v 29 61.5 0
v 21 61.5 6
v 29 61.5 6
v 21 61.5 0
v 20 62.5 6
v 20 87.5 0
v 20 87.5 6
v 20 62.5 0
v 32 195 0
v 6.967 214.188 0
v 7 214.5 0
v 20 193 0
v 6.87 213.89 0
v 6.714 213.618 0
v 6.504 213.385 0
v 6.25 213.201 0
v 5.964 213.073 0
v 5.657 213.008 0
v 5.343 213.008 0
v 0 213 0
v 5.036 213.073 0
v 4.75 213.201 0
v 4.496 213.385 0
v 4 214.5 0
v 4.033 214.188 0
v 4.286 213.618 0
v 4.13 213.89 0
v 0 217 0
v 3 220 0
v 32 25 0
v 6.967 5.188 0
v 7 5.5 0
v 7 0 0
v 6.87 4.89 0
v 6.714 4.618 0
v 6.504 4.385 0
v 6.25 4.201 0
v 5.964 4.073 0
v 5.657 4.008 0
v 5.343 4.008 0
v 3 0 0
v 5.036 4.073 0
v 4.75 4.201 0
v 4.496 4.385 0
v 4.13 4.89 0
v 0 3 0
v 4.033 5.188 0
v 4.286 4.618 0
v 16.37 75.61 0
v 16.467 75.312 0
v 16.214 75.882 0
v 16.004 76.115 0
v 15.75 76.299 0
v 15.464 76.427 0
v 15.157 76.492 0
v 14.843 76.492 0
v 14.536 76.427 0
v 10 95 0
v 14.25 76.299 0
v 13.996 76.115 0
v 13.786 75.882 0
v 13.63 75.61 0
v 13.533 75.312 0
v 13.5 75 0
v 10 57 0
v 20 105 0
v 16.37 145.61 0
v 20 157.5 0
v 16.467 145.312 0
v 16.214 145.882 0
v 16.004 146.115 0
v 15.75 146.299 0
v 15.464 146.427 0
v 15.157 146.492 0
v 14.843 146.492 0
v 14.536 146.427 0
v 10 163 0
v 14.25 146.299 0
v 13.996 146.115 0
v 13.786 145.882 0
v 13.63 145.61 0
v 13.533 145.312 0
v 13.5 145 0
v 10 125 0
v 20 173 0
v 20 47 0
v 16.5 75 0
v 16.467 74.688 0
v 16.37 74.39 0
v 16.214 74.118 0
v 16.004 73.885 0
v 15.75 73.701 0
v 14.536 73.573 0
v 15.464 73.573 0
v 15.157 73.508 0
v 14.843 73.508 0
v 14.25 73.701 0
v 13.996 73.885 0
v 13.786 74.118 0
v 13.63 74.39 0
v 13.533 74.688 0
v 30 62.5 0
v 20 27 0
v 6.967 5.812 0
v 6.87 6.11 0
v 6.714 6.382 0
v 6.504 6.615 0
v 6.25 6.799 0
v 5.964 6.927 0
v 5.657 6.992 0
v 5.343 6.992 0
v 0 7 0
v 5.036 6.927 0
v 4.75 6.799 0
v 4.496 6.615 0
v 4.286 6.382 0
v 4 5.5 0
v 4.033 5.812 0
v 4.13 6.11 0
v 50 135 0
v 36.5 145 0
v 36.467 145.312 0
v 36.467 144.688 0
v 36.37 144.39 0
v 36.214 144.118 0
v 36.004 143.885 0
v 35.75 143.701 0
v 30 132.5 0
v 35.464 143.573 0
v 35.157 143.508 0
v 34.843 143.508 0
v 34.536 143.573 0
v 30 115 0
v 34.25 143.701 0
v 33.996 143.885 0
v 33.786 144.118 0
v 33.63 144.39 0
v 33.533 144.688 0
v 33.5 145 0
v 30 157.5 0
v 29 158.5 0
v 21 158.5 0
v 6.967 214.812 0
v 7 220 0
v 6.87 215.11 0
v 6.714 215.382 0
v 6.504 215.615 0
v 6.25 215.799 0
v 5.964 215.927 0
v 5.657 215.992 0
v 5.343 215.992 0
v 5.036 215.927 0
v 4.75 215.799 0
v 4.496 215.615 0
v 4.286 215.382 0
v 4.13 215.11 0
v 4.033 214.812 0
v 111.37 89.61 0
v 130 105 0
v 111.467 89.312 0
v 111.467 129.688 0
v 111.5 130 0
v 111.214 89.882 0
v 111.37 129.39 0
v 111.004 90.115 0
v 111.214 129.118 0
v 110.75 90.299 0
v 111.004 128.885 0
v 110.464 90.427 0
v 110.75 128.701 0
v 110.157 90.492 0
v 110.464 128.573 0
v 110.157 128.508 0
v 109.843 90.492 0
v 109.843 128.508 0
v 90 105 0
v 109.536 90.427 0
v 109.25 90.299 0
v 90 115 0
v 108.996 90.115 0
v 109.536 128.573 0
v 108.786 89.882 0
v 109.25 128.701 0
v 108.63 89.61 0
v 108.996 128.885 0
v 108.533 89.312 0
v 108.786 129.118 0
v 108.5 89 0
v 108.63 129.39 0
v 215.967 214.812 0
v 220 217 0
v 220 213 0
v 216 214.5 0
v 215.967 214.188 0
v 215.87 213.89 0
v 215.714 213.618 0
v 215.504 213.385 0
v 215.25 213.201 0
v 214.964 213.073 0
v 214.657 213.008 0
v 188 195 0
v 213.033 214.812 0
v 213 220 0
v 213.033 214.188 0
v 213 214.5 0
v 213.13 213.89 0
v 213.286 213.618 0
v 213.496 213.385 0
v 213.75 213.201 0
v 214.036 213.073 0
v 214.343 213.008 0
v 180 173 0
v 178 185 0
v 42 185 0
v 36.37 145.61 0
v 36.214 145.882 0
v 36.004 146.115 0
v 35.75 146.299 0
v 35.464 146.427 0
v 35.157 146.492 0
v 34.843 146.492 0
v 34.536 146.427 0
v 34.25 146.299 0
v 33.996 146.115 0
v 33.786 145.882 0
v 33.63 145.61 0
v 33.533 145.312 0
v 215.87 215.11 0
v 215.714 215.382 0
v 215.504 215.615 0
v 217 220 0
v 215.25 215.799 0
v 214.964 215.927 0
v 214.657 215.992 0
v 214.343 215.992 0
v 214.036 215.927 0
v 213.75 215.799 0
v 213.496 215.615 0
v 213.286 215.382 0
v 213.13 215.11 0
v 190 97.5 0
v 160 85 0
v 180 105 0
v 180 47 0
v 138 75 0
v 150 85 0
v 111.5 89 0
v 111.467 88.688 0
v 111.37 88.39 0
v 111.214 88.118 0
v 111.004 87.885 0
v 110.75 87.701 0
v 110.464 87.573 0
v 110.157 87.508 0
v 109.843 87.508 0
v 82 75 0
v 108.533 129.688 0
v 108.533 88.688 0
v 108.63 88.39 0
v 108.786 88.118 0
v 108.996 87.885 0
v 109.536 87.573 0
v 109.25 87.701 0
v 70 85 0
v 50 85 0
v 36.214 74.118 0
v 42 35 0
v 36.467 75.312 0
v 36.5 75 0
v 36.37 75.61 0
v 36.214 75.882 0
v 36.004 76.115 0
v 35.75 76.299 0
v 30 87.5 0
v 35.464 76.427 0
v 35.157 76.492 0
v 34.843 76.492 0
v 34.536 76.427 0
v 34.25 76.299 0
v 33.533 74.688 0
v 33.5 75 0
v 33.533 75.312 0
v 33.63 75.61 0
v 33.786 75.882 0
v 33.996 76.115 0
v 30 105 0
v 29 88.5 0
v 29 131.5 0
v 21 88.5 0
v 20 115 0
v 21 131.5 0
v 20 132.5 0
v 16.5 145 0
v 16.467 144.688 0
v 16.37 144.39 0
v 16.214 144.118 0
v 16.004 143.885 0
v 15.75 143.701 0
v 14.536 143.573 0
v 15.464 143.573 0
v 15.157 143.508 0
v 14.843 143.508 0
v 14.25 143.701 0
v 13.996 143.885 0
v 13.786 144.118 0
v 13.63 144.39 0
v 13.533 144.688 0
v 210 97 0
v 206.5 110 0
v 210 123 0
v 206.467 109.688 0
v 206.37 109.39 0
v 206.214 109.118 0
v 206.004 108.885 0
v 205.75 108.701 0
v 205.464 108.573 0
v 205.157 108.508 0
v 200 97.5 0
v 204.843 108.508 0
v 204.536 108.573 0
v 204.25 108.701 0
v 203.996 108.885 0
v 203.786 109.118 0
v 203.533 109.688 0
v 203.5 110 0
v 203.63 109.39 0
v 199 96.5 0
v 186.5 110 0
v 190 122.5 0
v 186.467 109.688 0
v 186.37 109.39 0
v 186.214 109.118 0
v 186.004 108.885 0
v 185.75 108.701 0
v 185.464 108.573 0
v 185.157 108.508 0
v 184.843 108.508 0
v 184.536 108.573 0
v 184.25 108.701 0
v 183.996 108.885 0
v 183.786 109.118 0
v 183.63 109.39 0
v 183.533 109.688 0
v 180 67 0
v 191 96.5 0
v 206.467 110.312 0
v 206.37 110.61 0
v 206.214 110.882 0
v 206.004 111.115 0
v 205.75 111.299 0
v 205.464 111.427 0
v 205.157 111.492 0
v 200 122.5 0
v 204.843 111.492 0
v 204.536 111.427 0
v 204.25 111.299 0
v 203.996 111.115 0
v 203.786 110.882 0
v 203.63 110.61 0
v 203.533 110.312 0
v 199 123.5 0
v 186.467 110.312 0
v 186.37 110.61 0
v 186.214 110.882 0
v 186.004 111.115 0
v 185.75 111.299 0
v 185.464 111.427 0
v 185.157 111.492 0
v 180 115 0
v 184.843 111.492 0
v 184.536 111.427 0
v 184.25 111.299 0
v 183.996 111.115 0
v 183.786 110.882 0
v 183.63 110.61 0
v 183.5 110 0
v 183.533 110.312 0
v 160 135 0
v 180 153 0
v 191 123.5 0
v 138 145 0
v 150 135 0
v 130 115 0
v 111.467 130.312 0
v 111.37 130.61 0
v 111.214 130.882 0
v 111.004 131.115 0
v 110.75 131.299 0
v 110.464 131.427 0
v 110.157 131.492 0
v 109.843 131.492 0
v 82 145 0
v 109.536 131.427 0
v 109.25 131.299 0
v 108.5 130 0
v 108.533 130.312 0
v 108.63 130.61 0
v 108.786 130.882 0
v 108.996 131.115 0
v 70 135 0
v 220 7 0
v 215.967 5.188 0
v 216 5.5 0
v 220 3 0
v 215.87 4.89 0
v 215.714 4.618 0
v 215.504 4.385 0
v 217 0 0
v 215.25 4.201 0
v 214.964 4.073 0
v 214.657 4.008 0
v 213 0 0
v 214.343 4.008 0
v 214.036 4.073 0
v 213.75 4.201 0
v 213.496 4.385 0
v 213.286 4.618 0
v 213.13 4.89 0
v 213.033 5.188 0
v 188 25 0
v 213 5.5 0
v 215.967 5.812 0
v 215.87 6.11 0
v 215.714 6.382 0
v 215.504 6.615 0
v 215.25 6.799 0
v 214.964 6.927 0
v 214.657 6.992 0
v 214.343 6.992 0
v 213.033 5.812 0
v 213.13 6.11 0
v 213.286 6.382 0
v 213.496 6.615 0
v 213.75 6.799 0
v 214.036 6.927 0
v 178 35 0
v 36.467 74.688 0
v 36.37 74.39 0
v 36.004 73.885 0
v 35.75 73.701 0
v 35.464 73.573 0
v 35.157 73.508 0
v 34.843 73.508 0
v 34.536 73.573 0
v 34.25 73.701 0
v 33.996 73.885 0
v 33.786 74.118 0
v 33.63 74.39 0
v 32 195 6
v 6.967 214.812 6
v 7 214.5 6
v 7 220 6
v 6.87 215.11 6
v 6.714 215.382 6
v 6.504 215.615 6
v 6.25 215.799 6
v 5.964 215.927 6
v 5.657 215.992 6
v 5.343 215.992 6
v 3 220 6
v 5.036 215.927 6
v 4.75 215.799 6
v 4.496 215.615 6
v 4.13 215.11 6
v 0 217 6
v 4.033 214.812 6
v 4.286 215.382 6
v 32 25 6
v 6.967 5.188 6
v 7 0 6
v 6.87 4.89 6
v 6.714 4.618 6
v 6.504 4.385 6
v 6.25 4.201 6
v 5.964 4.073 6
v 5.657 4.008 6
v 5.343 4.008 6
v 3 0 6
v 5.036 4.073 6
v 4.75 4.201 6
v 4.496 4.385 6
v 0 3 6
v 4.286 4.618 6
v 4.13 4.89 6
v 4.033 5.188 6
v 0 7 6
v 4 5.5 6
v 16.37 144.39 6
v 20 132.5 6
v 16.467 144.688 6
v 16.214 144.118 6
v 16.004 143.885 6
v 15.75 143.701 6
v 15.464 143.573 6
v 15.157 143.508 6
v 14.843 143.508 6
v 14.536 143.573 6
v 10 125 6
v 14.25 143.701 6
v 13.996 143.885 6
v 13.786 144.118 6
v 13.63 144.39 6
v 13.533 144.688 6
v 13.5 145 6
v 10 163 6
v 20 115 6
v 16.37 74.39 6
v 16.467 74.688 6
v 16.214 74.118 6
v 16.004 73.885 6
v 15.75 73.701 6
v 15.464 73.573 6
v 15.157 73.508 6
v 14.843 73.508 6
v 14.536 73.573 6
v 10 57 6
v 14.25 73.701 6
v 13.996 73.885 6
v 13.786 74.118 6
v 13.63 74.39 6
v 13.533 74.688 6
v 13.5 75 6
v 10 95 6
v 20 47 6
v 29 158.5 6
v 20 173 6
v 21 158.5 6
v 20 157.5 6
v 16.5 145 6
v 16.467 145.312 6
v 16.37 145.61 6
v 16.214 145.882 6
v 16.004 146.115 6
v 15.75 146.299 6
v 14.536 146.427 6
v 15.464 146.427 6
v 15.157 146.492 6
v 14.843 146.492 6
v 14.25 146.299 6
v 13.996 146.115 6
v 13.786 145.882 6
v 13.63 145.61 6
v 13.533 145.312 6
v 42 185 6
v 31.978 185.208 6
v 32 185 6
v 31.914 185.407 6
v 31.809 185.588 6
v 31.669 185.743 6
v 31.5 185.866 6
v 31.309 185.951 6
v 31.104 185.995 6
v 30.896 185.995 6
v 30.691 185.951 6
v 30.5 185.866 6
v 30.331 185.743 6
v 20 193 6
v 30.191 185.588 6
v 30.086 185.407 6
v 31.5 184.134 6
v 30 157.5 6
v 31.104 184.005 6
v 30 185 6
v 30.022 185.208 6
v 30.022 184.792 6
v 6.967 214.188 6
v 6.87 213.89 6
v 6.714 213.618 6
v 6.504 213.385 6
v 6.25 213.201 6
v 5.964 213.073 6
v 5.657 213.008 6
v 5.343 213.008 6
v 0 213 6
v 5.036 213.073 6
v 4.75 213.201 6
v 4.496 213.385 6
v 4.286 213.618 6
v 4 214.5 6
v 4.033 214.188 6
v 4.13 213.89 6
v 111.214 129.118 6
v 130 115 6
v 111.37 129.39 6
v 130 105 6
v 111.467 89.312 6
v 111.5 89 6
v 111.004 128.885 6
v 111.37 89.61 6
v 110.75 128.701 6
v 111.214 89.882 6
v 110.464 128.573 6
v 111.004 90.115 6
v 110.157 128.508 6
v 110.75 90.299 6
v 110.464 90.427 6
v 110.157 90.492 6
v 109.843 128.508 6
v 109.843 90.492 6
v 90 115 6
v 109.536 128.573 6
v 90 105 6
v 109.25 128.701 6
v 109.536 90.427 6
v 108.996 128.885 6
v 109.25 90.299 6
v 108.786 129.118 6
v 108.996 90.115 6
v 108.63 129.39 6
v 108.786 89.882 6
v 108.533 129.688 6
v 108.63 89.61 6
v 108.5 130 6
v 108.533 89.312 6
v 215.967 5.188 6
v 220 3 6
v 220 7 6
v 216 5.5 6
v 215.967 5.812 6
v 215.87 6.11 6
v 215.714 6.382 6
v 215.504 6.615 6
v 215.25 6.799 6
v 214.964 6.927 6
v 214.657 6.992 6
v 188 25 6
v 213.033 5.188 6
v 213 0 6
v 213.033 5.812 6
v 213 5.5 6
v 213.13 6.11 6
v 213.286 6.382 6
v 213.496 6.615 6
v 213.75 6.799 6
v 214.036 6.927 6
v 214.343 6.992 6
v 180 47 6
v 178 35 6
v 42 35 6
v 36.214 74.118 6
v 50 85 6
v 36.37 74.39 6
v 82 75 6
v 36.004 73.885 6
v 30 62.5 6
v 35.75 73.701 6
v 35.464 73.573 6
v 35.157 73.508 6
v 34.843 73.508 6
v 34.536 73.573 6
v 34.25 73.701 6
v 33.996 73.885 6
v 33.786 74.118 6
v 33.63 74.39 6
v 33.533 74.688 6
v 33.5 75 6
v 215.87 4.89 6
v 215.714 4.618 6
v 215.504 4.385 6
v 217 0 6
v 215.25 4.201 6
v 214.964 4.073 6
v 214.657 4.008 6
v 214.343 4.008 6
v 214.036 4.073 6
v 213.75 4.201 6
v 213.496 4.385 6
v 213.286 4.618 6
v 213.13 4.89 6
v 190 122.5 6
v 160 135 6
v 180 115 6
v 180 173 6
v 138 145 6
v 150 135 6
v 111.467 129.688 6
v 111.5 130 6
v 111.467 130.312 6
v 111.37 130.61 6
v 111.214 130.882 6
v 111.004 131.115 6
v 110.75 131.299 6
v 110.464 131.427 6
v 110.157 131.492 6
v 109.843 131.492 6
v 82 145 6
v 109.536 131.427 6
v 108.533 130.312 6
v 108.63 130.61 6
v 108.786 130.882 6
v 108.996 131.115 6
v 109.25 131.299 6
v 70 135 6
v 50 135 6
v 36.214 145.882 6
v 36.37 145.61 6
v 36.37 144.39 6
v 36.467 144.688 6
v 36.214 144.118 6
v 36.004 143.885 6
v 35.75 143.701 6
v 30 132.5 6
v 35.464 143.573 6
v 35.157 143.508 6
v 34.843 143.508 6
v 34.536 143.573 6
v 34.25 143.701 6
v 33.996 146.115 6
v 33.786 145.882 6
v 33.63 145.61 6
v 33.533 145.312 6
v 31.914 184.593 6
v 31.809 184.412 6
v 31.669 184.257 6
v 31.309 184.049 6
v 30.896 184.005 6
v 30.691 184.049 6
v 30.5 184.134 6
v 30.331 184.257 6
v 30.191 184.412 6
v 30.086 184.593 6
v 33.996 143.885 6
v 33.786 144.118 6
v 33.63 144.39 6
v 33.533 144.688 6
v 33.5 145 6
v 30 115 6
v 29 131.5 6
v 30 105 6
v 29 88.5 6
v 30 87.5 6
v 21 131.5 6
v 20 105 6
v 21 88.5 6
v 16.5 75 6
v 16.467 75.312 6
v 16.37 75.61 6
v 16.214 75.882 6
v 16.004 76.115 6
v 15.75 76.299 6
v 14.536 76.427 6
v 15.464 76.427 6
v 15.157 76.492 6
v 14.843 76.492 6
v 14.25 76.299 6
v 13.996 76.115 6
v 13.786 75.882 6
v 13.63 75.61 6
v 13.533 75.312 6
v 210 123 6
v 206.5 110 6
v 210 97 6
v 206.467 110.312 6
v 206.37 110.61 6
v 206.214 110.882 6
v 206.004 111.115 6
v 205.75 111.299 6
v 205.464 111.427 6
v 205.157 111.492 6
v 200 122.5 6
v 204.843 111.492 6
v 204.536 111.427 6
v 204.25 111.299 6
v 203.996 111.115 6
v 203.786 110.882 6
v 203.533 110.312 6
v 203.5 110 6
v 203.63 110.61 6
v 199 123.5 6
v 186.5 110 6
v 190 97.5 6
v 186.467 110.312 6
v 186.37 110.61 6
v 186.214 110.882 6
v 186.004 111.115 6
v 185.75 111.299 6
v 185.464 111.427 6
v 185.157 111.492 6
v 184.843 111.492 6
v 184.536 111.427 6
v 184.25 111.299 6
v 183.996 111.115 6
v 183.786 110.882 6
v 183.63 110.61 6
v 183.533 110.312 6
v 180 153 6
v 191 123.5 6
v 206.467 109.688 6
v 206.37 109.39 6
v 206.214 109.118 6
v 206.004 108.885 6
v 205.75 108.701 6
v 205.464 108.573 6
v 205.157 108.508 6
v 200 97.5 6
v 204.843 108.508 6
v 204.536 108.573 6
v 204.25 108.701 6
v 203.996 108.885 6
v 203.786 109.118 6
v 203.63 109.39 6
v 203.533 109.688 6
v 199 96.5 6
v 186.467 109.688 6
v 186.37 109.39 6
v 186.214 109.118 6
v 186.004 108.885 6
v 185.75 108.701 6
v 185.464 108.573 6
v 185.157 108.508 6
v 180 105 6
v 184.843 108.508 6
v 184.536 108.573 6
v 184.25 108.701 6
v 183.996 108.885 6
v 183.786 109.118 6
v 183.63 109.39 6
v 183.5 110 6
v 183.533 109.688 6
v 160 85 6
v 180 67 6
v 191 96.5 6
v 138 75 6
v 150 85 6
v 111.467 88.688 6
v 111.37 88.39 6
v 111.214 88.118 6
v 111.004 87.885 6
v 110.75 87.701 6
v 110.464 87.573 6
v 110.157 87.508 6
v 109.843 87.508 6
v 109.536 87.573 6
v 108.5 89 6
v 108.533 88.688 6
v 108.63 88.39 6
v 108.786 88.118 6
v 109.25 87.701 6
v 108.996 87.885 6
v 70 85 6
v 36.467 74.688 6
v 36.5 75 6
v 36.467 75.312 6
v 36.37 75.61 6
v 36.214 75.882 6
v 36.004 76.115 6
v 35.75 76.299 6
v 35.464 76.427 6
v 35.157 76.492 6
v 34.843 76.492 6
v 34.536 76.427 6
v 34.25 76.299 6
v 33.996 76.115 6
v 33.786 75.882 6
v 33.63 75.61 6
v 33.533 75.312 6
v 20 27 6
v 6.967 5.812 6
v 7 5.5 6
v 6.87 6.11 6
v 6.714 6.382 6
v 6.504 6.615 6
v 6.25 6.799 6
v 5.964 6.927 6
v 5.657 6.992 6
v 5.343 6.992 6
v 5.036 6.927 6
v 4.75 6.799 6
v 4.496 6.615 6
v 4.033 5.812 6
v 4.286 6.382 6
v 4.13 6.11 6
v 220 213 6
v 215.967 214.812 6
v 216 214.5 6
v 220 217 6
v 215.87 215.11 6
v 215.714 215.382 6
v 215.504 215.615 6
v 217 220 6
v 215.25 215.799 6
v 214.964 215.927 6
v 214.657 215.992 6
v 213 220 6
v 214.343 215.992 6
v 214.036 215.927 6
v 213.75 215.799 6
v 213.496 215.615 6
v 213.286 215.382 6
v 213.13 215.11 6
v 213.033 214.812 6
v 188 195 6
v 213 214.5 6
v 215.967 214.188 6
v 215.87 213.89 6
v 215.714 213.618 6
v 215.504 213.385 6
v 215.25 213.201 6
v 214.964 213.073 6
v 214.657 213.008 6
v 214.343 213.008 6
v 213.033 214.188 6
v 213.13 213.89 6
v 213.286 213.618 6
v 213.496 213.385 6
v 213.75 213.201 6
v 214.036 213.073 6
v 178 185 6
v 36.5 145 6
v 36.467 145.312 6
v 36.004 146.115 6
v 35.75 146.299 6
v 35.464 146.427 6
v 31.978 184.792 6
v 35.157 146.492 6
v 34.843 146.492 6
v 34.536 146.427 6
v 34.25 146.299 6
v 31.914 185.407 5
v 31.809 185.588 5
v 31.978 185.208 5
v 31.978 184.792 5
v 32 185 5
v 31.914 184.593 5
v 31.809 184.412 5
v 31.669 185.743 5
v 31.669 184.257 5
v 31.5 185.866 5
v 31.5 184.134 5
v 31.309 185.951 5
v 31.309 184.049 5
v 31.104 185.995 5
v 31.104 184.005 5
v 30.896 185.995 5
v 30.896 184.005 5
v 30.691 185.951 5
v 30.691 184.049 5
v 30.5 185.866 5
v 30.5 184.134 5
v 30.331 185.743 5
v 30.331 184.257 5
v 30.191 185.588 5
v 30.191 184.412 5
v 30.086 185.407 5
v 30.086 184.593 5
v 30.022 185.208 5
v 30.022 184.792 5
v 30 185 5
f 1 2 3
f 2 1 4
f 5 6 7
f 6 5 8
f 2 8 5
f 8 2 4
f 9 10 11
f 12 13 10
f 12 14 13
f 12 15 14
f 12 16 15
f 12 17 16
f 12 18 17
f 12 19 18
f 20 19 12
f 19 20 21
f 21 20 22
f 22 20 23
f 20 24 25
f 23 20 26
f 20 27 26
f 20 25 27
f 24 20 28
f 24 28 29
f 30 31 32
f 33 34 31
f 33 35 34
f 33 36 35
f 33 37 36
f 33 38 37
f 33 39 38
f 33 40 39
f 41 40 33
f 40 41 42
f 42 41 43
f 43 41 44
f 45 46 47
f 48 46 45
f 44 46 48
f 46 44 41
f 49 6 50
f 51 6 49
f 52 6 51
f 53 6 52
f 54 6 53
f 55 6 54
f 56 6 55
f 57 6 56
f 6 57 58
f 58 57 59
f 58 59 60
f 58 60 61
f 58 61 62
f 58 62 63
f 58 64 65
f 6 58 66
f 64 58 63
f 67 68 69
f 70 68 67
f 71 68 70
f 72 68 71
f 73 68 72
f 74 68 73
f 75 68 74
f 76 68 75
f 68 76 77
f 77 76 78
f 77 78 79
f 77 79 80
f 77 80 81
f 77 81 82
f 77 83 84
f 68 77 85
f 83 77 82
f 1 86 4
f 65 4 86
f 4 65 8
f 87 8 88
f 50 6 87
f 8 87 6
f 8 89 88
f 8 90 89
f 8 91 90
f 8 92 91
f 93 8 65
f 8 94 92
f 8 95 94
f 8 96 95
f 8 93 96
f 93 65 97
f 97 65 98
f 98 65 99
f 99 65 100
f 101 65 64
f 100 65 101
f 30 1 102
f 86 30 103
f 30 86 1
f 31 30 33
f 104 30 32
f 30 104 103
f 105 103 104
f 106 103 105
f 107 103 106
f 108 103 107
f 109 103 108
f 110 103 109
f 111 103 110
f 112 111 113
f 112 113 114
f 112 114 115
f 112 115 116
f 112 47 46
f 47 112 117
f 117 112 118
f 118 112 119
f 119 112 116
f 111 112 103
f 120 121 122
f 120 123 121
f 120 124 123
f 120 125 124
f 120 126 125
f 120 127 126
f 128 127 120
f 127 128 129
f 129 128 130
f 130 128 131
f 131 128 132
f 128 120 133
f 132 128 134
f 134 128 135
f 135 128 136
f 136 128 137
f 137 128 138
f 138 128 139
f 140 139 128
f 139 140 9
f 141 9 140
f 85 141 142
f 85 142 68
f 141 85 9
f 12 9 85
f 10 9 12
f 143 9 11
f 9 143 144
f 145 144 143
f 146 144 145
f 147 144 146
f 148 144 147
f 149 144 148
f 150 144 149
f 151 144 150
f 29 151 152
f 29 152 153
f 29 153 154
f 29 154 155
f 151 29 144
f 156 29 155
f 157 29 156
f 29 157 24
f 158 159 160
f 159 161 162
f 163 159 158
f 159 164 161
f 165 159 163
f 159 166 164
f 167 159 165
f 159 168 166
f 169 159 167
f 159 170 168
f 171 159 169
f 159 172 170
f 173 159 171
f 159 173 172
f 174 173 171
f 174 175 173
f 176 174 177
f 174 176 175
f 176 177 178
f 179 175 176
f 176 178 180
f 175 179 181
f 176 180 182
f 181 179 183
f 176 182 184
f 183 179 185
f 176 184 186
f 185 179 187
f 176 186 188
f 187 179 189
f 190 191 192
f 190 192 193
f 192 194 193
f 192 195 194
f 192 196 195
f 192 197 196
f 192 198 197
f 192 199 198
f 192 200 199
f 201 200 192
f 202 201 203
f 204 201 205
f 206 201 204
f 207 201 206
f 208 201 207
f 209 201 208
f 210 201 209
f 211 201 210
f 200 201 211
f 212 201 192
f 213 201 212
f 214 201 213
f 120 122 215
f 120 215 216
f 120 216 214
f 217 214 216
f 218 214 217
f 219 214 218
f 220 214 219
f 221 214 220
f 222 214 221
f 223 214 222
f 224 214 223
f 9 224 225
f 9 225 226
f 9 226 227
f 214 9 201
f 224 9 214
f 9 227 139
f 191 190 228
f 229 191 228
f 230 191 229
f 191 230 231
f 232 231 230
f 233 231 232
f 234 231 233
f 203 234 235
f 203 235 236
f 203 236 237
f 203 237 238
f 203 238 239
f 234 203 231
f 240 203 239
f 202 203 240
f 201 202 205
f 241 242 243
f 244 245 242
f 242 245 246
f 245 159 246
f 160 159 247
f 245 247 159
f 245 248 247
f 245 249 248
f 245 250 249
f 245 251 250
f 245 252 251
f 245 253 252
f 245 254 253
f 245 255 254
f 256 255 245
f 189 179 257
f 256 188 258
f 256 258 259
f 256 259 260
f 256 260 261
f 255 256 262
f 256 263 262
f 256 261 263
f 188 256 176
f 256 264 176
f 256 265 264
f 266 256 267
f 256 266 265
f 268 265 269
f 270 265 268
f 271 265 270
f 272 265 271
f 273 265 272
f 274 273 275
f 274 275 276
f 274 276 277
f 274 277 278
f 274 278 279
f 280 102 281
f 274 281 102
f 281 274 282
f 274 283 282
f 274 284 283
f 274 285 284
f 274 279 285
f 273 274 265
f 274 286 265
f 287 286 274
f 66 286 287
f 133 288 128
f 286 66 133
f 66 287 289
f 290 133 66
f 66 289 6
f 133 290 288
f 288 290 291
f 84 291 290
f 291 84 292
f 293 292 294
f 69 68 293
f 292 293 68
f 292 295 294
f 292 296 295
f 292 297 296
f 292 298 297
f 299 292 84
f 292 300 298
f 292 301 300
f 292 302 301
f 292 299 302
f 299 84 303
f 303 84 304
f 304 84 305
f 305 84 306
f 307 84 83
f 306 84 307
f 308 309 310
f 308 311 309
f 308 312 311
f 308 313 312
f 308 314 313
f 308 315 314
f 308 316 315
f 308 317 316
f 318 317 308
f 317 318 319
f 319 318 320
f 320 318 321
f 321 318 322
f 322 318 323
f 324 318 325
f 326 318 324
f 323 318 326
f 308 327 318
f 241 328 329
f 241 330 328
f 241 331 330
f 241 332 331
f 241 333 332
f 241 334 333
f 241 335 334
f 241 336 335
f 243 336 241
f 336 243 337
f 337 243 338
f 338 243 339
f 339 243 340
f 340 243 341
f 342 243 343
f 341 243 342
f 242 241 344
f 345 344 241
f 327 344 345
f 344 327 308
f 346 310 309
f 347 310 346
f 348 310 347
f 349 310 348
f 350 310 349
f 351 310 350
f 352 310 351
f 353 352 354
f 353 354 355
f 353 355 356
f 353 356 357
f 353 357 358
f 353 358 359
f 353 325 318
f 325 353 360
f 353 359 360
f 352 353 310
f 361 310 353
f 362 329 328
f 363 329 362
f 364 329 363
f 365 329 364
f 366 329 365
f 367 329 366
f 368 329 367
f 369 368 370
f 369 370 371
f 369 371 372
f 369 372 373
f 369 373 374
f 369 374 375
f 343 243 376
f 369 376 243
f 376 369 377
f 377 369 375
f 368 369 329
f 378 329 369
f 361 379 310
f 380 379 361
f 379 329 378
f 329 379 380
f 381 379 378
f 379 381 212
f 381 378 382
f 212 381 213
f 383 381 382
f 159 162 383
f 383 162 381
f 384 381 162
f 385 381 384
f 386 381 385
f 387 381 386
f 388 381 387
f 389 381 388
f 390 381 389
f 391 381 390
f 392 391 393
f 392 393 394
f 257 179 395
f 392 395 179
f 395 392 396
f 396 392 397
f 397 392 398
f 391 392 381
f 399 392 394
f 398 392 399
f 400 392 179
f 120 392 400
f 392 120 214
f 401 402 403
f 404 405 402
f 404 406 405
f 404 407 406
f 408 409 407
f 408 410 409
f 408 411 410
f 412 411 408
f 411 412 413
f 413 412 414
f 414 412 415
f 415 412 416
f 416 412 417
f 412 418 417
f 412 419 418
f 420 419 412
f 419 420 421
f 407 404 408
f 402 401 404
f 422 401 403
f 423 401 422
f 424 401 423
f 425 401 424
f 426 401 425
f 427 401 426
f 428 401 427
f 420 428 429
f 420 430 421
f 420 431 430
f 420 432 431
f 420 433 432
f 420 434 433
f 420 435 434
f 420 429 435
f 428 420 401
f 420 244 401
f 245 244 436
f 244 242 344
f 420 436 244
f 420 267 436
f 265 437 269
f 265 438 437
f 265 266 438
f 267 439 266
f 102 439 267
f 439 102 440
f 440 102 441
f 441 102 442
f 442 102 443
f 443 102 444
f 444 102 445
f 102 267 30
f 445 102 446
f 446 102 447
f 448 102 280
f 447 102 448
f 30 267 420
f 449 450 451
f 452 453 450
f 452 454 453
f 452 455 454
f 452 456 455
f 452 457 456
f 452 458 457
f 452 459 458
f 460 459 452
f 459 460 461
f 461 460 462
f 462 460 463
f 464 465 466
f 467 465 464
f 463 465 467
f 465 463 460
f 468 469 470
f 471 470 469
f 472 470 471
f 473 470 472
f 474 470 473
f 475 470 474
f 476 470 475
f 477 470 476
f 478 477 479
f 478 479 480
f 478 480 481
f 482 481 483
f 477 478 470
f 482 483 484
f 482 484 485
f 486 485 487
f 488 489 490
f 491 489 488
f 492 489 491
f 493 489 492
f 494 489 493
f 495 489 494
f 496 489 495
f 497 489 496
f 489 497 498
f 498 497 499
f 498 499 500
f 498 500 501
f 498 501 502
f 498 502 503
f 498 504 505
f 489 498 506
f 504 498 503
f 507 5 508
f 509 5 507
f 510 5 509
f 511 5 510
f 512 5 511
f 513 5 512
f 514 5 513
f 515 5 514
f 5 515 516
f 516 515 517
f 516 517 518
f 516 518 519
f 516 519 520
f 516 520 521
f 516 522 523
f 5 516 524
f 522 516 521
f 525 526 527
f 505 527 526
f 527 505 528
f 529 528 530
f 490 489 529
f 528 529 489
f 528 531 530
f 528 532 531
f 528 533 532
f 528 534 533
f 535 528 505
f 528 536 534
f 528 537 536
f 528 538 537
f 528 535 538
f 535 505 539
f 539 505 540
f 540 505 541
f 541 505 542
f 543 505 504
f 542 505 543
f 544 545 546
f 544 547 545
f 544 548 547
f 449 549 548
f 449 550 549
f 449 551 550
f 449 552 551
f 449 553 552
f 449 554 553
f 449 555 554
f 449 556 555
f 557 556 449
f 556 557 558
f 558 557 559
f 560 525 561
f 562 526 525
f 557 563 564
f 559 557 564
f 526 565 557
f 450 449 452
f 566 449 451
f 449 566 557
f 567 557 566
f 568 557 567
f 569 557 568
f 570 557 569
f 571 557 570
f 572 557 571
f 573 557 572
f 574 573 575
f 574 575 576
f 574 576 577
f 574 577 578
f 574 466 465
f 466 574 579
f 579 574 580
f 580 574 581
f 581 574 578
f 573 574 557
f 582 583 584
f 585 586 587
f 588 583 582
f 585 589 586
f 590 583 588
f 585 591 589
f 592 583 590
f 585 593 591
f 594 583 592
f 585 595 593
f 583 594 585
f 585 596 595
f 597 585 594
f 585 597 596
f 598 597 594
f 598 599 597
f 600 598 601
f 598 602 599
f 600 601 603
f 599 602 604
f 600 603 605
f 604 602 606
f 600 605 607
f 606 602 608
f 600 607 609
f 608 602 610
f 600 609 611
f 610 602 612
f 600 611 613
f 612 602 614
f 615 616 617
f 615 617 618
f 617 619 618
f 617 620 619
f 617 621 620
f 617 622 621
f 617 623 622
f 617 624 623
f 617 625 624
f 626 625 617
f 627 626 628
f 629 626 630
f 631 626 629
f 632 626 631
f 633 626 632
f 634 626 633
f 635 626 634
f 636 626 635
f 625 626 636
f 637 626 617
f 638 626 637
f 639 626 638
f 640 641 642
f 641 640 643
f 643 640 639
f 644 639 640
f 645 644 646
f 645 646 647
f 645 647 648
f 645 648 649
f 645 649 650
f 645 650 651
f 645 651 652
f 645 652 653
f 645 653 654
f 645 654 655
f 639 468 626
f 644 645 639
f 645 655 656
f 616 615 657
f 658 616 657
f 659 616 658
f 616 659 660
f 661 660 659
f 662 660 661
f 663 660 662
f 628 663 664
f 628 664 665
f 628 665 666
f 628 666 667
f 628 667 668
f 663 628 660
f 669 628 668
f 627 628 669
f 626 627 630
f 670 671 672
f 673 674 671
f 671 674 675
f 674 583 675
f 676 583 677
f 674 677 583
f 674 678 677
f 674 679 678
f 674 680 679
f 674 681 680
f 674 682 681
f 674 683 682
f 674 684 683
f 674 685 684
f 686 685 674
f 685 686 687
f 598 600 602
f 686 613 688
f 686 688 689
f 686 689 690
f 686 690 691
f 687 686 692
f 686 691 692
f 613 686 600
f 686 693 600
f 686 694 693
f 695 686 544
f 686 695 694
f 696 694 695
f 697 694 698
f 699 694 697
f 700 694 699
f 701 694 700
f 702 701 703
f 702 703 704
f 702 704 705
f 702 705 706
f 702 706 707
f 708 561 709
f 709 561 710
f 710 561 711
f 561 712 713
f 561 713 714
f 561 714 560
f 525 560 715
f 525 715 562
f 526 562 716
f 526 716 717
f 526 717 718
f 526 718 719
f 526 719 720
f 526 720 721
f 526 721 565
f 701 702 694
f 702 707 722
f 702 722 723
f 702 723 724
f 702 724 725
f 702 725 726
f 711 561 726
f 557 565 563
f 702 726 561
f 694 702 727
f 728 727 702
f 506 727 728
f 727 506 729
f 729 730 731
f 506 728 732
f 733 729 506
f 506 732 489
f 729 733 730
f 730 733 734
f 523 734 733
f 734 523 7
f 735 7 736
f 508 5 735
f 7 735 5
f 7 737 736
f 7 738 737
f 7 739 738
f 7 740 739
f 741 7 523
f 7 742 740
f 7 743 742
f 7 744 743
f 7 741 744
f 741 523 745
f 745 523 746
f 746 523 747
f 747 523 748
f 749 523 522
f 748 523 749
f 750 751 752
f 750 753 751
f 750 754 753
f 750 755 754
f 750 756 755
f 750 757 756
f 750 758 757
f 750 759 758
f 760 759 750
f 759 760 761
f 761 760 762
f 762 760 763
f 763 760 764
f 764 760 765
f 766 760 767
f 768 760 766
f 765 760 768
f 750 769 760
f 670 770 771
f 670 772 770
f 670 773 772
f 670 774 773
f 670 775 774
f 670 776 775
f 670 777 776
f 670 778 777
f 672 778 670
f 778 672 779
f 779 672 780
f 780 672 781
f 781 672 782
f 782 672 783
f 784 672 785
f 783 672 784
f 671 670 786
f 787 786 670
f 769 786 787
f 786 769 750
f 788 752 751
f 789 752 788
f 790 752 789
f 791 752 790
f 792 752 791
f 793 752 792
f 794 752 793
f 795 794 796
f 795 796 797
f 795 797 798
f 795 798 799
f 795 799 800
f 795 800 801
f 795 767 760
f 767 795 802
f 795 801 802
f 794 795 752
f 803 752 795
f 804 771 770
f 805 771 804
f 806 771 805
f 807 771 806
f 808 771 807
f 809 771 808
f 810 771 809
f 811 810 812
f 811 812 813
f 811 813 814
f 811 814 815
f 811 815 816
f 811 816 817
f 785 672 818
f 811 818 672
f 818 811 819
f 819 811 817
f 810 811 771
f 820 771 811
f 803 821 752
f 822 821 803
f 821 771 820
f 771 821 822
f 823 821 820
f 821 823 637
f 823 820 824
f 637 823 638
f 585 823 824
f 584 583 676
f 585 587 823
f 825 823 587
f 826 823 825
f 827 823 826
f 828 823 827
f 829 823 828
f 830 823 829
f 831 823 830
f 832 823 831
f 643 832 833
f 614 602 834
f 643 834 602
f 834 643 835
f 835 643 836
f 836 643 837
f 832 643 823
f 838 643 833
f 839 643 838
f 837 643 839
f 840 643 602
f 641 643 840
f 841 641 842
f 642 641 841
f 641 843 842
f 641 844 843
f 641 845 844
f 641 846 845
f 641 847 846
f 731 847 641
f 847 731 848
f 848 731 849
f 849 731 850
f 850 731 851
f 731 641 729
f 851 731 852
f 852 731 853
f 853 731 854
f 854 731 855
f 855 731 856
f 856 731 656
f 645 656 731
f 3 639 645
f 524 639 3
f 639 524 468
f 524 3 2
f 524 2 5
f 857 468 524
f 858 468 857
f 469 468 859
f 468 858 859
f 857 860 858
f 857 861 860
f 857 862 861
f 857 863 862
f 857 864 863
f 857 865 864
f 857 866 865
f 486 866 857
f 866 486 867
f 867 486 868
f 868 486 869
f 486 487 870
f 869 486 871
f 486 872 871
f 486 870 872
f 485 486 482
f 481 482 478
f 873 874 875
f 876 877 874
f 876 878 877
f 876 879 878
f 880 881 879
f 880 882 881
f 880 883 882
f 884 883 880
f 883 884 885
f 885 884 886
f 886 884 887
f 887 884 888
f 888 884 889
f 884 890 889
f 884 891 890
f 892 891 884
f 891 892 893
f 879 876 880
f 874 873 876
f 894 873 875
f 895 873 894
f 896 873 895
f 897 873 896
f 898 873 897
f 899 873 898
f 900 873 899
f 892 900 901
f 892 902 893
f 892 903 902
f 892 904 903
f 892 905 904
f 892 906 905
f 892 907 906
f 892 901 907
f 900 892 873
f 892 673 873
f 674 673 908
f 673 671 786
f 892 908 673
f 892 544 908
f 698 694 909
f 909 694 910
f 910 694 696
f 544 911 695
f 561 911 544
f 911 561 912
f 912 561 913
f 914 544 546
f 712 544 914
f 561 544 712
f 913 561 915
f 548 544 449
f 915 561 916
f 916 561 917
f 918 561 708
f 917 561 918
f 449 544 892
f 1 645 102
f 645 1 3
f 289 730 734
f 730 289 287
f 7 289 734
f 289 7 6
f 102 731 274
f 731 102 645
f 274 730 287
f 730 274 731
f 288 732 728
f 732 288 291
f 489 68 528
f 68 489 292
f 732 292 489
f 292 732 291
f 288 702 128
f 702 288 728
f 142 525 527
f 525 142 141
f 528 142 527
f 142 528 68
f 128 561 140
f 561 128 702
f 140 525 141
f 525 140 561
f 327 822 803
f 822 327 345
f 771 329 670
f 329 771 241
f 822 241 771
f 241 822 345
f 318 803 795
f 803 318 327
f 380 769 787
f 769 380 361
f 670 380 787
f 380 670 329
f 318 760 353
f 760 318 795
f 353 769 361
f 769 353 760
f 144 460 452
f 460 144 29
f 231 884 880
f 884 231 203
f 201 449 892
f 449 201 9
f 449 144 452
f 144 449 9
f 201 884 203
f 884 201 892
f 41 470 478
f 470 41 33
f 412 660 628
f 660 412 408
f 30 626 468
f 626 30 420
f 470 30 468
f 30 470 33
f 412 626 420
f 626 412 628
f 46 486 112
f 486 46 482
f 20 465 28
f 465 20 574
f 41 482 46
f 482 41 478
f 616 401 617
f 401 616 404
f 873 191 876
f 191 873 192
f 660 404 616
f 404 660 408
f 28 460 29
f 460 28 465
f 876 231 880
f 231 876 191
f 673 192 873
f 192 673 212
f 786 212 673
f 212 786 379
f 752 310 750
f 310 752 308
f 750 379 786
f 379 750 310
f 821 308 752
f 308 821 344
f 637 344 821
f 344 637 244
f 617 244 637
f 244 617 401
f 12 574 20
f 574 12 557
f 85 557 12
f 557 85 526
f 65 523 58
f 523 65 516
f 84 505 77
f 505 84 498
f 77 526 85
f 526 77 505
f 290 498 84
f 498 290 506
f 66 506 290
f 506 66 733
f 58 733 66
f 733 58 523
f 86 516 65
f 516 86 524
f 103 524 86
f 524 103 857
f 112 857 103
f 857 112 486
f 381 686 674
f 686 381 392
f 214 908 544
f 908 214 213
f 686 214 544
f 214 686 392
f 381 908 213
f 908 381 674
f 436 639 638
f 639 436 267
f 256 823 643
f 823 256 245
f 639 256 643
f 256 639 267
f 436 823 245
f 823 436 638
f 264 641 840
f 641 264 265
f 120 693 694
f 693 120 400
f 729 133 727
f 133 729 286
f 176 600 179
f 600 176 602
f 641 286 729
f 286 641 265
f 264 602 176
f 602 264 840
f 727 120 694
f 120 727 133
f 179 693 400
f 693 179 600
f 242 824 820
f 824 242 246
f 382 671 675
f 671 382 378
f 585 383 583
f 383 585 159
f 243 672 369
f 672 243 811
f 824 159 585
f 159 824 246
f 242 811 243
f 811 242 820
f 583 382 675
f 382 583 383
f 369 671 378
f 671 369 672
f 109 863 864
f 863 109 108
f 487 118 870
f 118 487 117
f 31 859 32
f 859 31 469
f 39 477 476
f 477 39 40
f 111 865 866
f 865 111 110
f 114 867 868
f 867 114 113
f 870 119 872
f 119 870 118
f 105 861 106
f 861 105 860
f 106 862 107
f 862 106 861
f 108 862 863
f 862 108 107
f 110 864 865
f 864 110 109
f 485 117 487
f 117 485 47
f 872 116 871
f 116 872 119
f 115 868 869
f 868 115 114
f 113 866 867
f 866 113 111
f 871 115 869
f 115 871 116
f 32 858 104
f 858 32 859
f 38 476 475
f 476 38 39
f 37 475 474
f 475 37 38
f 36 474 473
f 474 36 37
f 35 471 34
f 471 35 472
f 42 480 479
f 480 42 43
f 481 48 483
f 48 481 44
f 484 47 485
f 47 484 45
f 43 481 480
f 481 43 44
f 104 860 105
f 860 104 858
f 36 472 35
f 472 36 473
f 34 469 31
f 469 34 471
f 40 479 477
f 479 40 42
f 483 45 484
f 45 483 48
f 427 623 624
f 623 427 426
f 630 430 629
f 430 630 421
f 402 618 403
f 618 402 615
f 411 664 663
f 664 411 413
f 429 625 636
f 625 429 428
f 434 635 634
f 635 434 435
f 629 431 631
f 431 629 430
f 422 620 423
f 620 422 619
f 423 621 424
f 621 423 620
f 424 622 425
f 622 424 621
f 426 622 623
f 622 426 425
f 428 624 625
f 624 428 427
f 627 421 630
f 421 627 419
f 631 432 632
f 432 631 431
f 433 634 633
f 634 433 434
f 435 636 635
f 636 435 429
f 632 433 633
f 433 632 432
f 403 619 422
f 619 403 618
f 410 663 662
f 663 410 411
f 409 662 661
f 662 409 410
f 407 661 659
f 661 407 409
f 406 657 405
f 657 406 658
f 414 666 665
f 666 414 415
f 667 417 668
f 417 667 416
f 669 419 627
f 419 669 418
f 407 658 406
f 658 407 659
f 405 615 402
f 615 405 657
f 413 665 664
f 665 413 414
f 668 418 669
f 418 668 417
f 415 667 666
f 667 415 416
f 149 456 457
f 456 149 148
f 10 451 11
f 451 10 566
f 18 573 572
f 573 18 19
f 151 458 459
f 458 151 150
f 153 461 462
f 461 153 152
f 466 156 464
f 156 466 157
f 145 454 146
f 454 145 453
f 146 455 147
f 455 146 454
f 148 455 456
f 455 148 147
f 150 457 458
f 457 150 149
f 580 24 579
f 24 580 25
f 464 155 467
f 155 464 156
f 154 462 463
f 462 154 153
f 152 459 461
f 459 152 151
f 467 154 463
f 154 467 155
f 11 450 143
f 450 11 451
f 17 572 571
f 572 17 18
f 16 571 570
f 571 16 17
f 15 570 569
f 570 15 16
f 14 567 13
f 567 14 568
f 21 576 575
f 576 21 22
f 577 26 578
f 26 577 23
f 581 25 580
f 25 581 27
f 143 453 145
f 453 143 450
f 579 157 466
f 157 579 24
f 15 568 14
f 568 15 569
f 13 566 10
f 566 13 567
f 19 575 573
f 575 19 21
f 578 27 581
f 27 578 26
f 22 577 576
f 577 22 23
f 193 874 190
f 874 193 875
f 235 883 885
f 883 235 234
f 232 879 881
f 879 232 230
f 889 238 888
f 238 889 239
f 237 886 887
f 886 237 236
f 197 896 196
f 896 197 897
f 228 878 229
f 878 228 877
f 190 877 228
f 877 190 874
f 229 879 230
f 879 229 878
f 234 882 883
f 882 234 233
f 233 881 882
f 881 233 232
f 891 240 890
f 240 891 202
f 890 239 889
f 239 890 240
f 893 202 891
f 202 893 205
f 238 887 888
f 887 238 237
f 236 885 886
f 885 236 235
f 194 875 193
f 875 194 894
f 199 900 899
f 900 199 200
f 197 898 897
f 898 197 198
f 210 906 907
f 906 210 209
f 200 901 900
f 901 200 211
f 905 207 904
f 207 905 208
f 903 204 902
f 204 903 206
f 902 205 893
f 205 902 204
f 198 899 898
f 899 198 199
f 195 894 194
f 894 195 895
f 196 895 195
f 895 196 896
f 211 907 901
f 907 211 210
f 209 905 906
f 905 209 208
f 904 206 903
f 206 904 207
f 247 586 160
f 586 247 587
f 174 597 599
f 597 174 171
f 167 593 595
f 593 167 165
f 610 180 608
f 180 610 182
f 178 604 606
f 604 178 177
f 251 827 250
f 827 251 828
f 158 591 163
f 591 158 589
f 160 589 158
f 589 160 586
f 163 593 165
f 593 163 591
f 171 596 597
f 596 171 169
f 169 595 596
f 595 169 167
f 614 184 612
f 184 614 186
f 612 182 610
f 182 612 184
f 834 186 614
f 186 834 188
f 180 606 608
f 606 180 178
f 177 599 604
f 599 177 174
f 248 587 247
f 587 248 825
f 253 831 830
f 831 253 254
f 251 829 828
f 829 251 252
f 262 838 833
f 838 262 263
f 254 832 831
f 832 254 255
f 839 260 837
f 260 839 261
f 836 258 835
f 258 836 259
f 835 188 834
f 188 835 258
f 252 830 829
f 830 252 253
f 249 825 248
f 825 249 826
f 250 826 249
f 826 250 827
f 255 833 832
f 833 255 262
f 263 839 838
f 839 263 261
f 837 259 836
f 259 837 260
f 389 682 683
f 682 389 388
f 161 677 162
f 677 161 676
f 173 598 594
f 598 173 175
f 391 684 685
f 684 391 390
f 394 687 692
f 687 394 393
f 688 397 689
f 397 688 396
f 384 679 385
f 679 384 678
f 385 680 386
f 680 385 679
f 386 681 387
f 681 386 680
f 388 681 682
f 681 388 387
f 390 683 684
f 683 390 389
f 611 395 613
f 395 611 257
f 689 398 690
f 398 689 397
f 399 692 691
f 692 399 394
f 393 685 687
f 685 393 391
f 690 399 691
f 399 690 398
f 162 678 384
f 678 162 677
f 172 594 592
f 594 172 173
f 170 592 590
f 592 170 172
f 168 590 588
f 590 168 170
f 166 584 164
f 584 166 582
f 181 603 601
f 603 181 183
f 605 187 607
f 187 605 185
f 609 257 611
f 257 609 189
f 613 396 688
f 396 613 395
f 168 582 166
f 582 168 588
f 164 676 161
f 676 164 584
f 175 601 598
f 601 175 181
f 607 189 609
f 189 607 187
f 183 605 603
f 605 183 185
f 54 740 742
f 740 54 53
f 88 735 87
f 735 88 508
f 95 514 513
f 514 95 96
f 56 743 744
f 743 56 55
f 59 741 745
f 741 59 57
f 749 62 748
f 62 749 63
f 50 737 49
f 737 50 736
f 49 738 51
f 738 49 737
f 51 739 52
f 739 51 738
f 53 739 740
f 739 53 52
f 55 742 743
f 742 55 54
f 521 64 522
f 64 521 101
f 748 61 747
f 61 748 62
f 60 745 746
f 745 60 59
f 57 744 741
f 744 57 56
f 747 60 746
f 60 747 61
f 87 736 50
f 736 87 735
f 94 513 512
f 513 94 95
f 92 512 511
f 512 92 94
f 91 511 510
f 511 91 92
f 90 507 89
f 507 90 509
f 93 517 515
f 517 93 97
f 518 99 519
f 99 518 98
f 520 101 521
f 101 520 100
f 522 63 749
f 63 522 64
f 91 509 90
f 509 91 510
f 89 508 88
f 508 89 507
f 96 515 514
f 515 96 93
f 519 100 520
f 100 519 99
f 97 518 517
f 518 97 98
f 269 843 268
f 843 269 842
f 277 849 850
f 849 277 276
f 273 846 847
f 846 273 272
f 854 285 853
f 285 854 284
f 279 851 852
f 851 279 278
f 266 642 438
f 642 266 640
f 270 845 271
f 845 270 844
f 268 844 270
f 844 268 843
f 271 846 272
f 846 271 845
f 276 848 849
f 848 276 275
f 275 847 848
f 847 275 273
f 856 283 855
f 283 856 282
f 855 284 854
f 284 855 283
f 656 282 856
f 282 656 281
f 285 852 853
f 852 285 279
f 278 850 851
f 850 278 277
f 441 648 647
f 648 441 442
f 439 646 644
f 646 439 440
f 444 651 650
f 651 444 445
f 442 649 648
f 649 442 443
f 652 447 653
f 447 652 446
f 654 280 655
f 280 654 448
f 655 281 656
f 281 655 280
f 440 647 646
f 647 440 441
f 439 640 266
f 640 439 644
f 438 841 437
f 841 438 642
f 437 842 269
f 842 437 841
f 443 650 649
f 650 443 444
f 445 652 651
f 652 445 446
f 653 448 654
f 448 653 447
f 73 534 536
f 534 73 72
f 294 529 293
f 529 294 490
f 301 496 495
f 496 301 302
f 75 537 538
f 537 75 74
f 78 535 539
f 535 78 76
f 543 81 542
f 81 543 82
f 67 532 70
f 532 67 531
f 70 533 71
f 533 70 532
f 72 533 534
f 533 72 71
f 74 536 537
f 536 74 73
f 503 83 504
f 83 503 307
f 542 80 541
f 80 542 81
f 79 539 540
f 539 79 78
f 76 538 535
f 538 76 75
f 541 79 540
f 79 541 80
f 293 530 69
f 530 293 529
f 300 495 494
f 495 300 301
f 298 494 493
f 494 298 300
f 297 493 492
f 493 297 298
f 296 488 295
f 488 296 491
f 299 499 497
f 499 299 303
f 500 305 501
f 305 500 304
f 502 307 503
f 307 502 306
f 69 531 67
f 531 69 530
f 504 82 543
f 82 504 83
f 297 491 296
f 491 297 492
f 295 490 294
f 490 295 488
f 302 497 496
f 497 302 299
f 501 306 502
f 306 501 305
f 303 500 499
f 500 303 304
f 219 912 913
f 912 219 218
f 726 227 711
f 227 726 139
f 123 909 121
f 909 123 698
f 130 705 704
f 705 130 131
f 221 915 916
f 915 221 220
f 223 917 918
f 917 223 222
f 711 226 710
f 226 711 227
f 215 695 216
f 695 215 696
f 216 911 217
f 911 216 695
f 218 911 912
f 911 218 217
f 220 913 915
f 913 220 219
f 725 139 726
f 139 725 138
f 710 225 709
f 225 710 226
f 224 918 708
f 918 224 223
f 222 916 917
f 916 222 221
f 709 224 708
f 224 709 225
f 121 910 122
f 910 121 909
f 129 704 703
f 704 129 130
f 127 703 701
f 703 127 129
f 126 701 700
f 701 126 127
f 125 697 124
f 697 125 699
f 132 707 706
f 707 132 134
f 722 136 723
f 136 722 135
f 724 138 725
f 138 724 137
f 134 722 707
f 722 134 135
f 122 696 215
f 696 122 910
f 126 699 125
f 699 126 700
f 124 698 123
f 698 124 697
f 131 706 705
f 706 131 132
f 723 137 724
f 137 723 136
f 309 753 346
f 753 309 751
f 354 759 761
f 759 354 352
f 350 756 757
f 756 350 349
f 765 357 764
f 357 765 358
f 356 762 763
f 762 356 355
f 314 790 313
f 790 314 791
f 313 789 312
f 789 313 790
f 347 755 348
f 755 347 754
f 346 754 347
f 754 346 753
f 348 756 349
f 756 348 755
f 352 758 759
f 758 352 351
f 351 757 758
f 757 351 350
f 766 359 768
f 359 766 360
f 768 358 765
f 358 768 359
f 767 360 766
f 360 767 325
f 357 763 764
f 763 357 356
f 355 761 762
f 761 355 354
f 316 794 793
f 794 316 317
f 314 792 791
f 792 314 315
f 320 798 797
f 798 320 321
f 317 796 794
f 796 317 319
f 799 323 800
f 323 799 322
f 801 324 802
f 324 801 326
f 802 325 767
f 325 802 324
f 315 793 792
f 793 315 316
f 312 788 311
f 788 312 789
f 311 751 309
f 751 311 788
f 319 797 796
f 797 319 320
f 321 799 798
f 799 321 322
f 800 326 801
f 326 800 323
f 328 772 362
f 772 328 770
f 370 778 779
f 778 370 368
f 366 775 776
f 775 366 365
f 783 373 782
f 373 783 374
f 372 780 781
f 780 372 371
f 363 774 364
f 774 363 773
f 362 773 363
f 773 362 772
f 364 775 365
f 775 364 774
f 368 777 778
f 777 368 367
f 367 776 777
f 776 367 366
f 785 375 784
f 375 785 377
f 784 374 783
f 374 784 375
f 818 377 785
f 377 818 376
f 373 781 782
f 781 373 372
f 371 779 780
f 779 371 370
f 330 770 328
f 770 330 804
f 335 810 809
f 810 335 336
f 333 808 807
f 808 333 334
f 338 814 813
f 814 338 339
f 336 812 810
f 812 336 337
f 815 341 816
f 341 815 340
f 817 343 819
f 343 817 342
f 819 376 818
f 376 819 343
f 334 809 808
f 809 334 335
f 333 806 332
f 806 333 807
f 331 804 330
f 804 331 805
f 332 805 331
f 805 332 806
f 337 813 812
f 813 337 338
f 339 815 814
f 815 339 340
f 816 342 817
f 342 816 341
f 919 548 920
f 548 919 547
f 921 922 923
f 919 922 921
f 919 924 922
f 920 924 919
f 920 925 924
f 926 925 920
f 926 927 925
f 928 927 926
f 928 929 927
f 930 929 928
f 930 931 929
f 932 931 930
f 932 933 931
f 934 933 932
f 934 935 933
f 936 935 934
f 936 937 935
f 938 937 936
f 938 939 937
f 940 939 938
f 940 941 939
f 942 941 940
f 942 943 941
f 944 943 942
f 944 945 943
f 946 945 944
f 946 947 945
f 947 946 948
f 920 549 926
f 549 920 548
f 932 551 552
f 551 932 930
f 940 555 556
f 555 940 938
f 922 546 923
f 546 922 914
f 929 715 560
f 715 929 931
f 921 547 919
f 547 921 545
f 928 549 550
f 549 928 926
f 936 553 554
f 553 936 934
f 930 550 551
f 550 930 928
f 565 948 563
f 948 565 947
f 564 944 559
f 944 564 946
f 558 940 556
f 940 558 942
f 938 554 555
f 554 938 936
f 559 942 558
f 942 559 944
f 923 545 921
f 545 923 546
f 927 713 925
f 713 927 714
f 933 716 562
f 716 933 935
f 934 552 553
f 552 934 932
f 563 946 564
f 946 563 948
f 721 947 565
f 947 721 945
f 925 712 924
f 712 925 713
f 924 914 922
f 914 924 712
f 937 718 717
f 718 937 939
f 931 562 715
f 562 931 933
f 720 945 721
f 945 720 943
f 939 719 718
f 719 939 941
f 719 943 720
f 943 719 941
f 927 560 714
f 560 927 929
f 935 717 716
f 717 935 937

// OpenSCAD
// Project:  Lecktor3D
// Part:     Heated bed support (y-carriage)
// Material: Alumiinium (6mm)
// Author:   Grigori Palamartšuk <grigori.palamarchuk@gmail.com>
// Source:   http://www.lecktor.com

$e = 0.0001;

module body()
{
    cube([220,220,6]);
}
module body_cutouts()
{
    //top side rectangular cutout
    translate([32,195,-1]) cube([156,25,8]);
    translate([7,220,7]) rotate([0,90,-90]) prism(8,25,25);
    translate([188,195,7]) rotate([0,90,0]) prism(8,25,25);

    // bottom side rectangular cutout
    translate([32,0,-1]) cube([156,25,8]);
    translate([32+$e,25,7]) rotate([0,90,180]) prism(8,25,25);
    translate([213,0,7]) rotate([0,90,90]) prism(8,25,25);
    
    // corner cutout (bottom left)
    translate([3,0,7]) rotate([0,90,90]) prism(8,3,3);
    // corner cutout (bottom right)
    translate([220,3,7]) rotate([0,90,180]) prism(8,3,3);
    // corner cutout (top left)
    translate([0,217,7]) rotate([0,90,0]) prism(8,3,3);
    // corner cutout (top right)
    translate([217,220,7]) rotate([0,90,-90]) prism(8,3,3);

    // right edge cutouts (top->bottom)
    translate([220,213,7]) rotate([0,90,180]) prism(8,40,40);
    translate([180,153,-1]) cube([40,20,8]);
    translate([180,153,7]) rotate([0,90,-90]) prism(8,30,30);
    translate([210,67,-1]) cube([10,86,8]);
    translate([210,97,7]) rotate([0,90,180]) prism(8,30,30);
    translate([180,47,-1]) cube([40,20,8]);
    translate([180,47,7]) rotate([0,90,-90]) prism(8,40,40);
    
    // left edge cutouts (top->bottom)
    translate([20,193,7]) rotate([0,90,90]) prism(8,20,20);
    translate([0,173,-1]) cube([20,20,8]);
    translate([10,163,7]) rotate([0,90,0]) prism(8,10,10);
    translate([0,47,-1]) cube([10,126,8]);
    translate([20,115,7]) rotate([0,90,90]) prism(8,10,10);
    translate([10,105,-1]) cube([10,10,8]);
    translate([10,95,7]) rotate([0,90,0]) prism(8,10,10);
    translate([20,47,7]) rotate([0,90,90]) prism(8,10,10);
    translate([0,27,-1]) cube([20,20,8]);
    translate([0,7,7]) rotate([0,90,0]) prism(8,20,20);
    
    // top body cutout (weight saver)
    translate([82,145,-1]) cube([56,40,8]);
    translate([42,185,7]) rotate([0,90,-90]) prism(8,40,40);
    translate([138,145,7]) rotate([0,90,0]) prism(8,40,40);
    
    // bottom body cutour (weight saver)
    translate([82,35,-1]) cube([56,40,8]);
    translate([82,75,7]) rotate([0,90,180]) prism(8,40,40);
    translate([178,35,7]) rotate([0,90,90]) prism(8,40,40);
    
    // center left body cutout (weight saver)
    translate([50,85,-1]) cube([20,50,8]);
    translate([30,105,-1]) cube([60,10,8]);
    translate([30,105,7]) rotate([0,90,-90]) prism(8,20,20);
    translate([70,85,7]) rotate([0,90,0]) prism(8,20,20);
    translate([50+$e,135,7]) rotate([0,90,180]) prism(8,20,20);
    translate([90,115,7]) rotate([0,90,90]) prism(8,20,20);
    
    // center right body cutout (weight saver)
    translate([150,85,-1]) cube([10,50,8]);
    translate([130,105,-1]) cube([50,10,8]);
    translate([130,105,7]) rotate([0,90,-90]) prism(8,20,20);
    translate([160,85,7]) rotate([0,90,0]) prism(8,20,20);
    translate([150,135,7]) rotate([0,90,180]) prism(8,20,20);
    translate([180,115,7]) rotate([0,90,90]) prism(8,20,20);
}
module bearing_cutouts()
{
    // right bottom
    translate([20,61.5,-1]) bearing_cutout();
    // right top
    translate([20,131.5,-1]) bearing_cutout();
    // left center
    translate([190,96.5,-1]) bearing_cutout();
}
module bearing_cutout()
{
    difference()
    {
        cube([10,27,8]);
        union()
        {
            translate([1,0,7]) rotate([0,90,90]) prism(6,1,1);
            translate([10+$e,1,7]) rotate([0,90,180]) prism(6,1,1);
            translate([0,26,7]) rotate([0,90,0]) prism(6,1,1);
            translate([9,27,7]) rotate([0,90,-90]) prism(6,1,1);
        }
    }
}
module holes()
{
    // m3 heated bed support hole (bottom left)
    translate([5.5,5.5,-1]) color("green") cylinder(h=8,r=1.5,$fn=30);
    // m3 heated bed support hole (bottom right)
    translate([214.5,5.5,-1]) color("green") cylinder(h=8,r=1.5,$fn=30);
    // m3 heated bed support hole (top left)
    translate([5.5,214.5,-1]) color("green") cylinder(h=8,r=1.5,$fn=30);
    // m3 heated bed support hole (top right)
    translate([214.5,214.5,-1]) color("green") cylinder(h=8,r=1.5,$fn=30);
    // m3 heated bed support hole (bottom center)
    translate([110,89,-1]) cylinder(h=8,r=1.5,$fn=30);
    // m3 heated bed support hole (top center)
    translate([110,130,-1]) cylinder(h=8,r=1.5,$fn=30);

    // m3 bearing support hole (left bottom)
    translate([15,75,-1]) cylinder(h=8,r=1.5,$fn=30);
    translate([35,75,-1]) cylinder(h=8,r=1.5,$fn=30);
    // m3 bearing support hole (left top)
    translate([15,145,-1]) cylinder(h=8,r=1.5,$fn=30);
    translate([35,145,-1]) cylinder(h=8,r=1.5,$fn=30);
    // m3 bearing support hole (right center)
    translate([205,110,-1]) cylinder(h=8,r=1.5,$fn=30);
    translate([185,110,-1]) cylinder(h=8,r=1.5,$fn=30);
}
module prism(l,w,h)
{
    polyhedron(
        points=[[0,0,0],[l,0,0],[l,w,0],[0,w,0],[0,w,h],[l,w,h]],
        faces= [[0,1,2,3],[5,4,3,2],[0,4,5,1],[0,3,4],[5,2,1]]
    );
}
module result()
{
    difference()
    {
        body();
        union()
        {
            body_cutouts();
            bearing_cutouts();
            holes();
        }
    }
}
result();
